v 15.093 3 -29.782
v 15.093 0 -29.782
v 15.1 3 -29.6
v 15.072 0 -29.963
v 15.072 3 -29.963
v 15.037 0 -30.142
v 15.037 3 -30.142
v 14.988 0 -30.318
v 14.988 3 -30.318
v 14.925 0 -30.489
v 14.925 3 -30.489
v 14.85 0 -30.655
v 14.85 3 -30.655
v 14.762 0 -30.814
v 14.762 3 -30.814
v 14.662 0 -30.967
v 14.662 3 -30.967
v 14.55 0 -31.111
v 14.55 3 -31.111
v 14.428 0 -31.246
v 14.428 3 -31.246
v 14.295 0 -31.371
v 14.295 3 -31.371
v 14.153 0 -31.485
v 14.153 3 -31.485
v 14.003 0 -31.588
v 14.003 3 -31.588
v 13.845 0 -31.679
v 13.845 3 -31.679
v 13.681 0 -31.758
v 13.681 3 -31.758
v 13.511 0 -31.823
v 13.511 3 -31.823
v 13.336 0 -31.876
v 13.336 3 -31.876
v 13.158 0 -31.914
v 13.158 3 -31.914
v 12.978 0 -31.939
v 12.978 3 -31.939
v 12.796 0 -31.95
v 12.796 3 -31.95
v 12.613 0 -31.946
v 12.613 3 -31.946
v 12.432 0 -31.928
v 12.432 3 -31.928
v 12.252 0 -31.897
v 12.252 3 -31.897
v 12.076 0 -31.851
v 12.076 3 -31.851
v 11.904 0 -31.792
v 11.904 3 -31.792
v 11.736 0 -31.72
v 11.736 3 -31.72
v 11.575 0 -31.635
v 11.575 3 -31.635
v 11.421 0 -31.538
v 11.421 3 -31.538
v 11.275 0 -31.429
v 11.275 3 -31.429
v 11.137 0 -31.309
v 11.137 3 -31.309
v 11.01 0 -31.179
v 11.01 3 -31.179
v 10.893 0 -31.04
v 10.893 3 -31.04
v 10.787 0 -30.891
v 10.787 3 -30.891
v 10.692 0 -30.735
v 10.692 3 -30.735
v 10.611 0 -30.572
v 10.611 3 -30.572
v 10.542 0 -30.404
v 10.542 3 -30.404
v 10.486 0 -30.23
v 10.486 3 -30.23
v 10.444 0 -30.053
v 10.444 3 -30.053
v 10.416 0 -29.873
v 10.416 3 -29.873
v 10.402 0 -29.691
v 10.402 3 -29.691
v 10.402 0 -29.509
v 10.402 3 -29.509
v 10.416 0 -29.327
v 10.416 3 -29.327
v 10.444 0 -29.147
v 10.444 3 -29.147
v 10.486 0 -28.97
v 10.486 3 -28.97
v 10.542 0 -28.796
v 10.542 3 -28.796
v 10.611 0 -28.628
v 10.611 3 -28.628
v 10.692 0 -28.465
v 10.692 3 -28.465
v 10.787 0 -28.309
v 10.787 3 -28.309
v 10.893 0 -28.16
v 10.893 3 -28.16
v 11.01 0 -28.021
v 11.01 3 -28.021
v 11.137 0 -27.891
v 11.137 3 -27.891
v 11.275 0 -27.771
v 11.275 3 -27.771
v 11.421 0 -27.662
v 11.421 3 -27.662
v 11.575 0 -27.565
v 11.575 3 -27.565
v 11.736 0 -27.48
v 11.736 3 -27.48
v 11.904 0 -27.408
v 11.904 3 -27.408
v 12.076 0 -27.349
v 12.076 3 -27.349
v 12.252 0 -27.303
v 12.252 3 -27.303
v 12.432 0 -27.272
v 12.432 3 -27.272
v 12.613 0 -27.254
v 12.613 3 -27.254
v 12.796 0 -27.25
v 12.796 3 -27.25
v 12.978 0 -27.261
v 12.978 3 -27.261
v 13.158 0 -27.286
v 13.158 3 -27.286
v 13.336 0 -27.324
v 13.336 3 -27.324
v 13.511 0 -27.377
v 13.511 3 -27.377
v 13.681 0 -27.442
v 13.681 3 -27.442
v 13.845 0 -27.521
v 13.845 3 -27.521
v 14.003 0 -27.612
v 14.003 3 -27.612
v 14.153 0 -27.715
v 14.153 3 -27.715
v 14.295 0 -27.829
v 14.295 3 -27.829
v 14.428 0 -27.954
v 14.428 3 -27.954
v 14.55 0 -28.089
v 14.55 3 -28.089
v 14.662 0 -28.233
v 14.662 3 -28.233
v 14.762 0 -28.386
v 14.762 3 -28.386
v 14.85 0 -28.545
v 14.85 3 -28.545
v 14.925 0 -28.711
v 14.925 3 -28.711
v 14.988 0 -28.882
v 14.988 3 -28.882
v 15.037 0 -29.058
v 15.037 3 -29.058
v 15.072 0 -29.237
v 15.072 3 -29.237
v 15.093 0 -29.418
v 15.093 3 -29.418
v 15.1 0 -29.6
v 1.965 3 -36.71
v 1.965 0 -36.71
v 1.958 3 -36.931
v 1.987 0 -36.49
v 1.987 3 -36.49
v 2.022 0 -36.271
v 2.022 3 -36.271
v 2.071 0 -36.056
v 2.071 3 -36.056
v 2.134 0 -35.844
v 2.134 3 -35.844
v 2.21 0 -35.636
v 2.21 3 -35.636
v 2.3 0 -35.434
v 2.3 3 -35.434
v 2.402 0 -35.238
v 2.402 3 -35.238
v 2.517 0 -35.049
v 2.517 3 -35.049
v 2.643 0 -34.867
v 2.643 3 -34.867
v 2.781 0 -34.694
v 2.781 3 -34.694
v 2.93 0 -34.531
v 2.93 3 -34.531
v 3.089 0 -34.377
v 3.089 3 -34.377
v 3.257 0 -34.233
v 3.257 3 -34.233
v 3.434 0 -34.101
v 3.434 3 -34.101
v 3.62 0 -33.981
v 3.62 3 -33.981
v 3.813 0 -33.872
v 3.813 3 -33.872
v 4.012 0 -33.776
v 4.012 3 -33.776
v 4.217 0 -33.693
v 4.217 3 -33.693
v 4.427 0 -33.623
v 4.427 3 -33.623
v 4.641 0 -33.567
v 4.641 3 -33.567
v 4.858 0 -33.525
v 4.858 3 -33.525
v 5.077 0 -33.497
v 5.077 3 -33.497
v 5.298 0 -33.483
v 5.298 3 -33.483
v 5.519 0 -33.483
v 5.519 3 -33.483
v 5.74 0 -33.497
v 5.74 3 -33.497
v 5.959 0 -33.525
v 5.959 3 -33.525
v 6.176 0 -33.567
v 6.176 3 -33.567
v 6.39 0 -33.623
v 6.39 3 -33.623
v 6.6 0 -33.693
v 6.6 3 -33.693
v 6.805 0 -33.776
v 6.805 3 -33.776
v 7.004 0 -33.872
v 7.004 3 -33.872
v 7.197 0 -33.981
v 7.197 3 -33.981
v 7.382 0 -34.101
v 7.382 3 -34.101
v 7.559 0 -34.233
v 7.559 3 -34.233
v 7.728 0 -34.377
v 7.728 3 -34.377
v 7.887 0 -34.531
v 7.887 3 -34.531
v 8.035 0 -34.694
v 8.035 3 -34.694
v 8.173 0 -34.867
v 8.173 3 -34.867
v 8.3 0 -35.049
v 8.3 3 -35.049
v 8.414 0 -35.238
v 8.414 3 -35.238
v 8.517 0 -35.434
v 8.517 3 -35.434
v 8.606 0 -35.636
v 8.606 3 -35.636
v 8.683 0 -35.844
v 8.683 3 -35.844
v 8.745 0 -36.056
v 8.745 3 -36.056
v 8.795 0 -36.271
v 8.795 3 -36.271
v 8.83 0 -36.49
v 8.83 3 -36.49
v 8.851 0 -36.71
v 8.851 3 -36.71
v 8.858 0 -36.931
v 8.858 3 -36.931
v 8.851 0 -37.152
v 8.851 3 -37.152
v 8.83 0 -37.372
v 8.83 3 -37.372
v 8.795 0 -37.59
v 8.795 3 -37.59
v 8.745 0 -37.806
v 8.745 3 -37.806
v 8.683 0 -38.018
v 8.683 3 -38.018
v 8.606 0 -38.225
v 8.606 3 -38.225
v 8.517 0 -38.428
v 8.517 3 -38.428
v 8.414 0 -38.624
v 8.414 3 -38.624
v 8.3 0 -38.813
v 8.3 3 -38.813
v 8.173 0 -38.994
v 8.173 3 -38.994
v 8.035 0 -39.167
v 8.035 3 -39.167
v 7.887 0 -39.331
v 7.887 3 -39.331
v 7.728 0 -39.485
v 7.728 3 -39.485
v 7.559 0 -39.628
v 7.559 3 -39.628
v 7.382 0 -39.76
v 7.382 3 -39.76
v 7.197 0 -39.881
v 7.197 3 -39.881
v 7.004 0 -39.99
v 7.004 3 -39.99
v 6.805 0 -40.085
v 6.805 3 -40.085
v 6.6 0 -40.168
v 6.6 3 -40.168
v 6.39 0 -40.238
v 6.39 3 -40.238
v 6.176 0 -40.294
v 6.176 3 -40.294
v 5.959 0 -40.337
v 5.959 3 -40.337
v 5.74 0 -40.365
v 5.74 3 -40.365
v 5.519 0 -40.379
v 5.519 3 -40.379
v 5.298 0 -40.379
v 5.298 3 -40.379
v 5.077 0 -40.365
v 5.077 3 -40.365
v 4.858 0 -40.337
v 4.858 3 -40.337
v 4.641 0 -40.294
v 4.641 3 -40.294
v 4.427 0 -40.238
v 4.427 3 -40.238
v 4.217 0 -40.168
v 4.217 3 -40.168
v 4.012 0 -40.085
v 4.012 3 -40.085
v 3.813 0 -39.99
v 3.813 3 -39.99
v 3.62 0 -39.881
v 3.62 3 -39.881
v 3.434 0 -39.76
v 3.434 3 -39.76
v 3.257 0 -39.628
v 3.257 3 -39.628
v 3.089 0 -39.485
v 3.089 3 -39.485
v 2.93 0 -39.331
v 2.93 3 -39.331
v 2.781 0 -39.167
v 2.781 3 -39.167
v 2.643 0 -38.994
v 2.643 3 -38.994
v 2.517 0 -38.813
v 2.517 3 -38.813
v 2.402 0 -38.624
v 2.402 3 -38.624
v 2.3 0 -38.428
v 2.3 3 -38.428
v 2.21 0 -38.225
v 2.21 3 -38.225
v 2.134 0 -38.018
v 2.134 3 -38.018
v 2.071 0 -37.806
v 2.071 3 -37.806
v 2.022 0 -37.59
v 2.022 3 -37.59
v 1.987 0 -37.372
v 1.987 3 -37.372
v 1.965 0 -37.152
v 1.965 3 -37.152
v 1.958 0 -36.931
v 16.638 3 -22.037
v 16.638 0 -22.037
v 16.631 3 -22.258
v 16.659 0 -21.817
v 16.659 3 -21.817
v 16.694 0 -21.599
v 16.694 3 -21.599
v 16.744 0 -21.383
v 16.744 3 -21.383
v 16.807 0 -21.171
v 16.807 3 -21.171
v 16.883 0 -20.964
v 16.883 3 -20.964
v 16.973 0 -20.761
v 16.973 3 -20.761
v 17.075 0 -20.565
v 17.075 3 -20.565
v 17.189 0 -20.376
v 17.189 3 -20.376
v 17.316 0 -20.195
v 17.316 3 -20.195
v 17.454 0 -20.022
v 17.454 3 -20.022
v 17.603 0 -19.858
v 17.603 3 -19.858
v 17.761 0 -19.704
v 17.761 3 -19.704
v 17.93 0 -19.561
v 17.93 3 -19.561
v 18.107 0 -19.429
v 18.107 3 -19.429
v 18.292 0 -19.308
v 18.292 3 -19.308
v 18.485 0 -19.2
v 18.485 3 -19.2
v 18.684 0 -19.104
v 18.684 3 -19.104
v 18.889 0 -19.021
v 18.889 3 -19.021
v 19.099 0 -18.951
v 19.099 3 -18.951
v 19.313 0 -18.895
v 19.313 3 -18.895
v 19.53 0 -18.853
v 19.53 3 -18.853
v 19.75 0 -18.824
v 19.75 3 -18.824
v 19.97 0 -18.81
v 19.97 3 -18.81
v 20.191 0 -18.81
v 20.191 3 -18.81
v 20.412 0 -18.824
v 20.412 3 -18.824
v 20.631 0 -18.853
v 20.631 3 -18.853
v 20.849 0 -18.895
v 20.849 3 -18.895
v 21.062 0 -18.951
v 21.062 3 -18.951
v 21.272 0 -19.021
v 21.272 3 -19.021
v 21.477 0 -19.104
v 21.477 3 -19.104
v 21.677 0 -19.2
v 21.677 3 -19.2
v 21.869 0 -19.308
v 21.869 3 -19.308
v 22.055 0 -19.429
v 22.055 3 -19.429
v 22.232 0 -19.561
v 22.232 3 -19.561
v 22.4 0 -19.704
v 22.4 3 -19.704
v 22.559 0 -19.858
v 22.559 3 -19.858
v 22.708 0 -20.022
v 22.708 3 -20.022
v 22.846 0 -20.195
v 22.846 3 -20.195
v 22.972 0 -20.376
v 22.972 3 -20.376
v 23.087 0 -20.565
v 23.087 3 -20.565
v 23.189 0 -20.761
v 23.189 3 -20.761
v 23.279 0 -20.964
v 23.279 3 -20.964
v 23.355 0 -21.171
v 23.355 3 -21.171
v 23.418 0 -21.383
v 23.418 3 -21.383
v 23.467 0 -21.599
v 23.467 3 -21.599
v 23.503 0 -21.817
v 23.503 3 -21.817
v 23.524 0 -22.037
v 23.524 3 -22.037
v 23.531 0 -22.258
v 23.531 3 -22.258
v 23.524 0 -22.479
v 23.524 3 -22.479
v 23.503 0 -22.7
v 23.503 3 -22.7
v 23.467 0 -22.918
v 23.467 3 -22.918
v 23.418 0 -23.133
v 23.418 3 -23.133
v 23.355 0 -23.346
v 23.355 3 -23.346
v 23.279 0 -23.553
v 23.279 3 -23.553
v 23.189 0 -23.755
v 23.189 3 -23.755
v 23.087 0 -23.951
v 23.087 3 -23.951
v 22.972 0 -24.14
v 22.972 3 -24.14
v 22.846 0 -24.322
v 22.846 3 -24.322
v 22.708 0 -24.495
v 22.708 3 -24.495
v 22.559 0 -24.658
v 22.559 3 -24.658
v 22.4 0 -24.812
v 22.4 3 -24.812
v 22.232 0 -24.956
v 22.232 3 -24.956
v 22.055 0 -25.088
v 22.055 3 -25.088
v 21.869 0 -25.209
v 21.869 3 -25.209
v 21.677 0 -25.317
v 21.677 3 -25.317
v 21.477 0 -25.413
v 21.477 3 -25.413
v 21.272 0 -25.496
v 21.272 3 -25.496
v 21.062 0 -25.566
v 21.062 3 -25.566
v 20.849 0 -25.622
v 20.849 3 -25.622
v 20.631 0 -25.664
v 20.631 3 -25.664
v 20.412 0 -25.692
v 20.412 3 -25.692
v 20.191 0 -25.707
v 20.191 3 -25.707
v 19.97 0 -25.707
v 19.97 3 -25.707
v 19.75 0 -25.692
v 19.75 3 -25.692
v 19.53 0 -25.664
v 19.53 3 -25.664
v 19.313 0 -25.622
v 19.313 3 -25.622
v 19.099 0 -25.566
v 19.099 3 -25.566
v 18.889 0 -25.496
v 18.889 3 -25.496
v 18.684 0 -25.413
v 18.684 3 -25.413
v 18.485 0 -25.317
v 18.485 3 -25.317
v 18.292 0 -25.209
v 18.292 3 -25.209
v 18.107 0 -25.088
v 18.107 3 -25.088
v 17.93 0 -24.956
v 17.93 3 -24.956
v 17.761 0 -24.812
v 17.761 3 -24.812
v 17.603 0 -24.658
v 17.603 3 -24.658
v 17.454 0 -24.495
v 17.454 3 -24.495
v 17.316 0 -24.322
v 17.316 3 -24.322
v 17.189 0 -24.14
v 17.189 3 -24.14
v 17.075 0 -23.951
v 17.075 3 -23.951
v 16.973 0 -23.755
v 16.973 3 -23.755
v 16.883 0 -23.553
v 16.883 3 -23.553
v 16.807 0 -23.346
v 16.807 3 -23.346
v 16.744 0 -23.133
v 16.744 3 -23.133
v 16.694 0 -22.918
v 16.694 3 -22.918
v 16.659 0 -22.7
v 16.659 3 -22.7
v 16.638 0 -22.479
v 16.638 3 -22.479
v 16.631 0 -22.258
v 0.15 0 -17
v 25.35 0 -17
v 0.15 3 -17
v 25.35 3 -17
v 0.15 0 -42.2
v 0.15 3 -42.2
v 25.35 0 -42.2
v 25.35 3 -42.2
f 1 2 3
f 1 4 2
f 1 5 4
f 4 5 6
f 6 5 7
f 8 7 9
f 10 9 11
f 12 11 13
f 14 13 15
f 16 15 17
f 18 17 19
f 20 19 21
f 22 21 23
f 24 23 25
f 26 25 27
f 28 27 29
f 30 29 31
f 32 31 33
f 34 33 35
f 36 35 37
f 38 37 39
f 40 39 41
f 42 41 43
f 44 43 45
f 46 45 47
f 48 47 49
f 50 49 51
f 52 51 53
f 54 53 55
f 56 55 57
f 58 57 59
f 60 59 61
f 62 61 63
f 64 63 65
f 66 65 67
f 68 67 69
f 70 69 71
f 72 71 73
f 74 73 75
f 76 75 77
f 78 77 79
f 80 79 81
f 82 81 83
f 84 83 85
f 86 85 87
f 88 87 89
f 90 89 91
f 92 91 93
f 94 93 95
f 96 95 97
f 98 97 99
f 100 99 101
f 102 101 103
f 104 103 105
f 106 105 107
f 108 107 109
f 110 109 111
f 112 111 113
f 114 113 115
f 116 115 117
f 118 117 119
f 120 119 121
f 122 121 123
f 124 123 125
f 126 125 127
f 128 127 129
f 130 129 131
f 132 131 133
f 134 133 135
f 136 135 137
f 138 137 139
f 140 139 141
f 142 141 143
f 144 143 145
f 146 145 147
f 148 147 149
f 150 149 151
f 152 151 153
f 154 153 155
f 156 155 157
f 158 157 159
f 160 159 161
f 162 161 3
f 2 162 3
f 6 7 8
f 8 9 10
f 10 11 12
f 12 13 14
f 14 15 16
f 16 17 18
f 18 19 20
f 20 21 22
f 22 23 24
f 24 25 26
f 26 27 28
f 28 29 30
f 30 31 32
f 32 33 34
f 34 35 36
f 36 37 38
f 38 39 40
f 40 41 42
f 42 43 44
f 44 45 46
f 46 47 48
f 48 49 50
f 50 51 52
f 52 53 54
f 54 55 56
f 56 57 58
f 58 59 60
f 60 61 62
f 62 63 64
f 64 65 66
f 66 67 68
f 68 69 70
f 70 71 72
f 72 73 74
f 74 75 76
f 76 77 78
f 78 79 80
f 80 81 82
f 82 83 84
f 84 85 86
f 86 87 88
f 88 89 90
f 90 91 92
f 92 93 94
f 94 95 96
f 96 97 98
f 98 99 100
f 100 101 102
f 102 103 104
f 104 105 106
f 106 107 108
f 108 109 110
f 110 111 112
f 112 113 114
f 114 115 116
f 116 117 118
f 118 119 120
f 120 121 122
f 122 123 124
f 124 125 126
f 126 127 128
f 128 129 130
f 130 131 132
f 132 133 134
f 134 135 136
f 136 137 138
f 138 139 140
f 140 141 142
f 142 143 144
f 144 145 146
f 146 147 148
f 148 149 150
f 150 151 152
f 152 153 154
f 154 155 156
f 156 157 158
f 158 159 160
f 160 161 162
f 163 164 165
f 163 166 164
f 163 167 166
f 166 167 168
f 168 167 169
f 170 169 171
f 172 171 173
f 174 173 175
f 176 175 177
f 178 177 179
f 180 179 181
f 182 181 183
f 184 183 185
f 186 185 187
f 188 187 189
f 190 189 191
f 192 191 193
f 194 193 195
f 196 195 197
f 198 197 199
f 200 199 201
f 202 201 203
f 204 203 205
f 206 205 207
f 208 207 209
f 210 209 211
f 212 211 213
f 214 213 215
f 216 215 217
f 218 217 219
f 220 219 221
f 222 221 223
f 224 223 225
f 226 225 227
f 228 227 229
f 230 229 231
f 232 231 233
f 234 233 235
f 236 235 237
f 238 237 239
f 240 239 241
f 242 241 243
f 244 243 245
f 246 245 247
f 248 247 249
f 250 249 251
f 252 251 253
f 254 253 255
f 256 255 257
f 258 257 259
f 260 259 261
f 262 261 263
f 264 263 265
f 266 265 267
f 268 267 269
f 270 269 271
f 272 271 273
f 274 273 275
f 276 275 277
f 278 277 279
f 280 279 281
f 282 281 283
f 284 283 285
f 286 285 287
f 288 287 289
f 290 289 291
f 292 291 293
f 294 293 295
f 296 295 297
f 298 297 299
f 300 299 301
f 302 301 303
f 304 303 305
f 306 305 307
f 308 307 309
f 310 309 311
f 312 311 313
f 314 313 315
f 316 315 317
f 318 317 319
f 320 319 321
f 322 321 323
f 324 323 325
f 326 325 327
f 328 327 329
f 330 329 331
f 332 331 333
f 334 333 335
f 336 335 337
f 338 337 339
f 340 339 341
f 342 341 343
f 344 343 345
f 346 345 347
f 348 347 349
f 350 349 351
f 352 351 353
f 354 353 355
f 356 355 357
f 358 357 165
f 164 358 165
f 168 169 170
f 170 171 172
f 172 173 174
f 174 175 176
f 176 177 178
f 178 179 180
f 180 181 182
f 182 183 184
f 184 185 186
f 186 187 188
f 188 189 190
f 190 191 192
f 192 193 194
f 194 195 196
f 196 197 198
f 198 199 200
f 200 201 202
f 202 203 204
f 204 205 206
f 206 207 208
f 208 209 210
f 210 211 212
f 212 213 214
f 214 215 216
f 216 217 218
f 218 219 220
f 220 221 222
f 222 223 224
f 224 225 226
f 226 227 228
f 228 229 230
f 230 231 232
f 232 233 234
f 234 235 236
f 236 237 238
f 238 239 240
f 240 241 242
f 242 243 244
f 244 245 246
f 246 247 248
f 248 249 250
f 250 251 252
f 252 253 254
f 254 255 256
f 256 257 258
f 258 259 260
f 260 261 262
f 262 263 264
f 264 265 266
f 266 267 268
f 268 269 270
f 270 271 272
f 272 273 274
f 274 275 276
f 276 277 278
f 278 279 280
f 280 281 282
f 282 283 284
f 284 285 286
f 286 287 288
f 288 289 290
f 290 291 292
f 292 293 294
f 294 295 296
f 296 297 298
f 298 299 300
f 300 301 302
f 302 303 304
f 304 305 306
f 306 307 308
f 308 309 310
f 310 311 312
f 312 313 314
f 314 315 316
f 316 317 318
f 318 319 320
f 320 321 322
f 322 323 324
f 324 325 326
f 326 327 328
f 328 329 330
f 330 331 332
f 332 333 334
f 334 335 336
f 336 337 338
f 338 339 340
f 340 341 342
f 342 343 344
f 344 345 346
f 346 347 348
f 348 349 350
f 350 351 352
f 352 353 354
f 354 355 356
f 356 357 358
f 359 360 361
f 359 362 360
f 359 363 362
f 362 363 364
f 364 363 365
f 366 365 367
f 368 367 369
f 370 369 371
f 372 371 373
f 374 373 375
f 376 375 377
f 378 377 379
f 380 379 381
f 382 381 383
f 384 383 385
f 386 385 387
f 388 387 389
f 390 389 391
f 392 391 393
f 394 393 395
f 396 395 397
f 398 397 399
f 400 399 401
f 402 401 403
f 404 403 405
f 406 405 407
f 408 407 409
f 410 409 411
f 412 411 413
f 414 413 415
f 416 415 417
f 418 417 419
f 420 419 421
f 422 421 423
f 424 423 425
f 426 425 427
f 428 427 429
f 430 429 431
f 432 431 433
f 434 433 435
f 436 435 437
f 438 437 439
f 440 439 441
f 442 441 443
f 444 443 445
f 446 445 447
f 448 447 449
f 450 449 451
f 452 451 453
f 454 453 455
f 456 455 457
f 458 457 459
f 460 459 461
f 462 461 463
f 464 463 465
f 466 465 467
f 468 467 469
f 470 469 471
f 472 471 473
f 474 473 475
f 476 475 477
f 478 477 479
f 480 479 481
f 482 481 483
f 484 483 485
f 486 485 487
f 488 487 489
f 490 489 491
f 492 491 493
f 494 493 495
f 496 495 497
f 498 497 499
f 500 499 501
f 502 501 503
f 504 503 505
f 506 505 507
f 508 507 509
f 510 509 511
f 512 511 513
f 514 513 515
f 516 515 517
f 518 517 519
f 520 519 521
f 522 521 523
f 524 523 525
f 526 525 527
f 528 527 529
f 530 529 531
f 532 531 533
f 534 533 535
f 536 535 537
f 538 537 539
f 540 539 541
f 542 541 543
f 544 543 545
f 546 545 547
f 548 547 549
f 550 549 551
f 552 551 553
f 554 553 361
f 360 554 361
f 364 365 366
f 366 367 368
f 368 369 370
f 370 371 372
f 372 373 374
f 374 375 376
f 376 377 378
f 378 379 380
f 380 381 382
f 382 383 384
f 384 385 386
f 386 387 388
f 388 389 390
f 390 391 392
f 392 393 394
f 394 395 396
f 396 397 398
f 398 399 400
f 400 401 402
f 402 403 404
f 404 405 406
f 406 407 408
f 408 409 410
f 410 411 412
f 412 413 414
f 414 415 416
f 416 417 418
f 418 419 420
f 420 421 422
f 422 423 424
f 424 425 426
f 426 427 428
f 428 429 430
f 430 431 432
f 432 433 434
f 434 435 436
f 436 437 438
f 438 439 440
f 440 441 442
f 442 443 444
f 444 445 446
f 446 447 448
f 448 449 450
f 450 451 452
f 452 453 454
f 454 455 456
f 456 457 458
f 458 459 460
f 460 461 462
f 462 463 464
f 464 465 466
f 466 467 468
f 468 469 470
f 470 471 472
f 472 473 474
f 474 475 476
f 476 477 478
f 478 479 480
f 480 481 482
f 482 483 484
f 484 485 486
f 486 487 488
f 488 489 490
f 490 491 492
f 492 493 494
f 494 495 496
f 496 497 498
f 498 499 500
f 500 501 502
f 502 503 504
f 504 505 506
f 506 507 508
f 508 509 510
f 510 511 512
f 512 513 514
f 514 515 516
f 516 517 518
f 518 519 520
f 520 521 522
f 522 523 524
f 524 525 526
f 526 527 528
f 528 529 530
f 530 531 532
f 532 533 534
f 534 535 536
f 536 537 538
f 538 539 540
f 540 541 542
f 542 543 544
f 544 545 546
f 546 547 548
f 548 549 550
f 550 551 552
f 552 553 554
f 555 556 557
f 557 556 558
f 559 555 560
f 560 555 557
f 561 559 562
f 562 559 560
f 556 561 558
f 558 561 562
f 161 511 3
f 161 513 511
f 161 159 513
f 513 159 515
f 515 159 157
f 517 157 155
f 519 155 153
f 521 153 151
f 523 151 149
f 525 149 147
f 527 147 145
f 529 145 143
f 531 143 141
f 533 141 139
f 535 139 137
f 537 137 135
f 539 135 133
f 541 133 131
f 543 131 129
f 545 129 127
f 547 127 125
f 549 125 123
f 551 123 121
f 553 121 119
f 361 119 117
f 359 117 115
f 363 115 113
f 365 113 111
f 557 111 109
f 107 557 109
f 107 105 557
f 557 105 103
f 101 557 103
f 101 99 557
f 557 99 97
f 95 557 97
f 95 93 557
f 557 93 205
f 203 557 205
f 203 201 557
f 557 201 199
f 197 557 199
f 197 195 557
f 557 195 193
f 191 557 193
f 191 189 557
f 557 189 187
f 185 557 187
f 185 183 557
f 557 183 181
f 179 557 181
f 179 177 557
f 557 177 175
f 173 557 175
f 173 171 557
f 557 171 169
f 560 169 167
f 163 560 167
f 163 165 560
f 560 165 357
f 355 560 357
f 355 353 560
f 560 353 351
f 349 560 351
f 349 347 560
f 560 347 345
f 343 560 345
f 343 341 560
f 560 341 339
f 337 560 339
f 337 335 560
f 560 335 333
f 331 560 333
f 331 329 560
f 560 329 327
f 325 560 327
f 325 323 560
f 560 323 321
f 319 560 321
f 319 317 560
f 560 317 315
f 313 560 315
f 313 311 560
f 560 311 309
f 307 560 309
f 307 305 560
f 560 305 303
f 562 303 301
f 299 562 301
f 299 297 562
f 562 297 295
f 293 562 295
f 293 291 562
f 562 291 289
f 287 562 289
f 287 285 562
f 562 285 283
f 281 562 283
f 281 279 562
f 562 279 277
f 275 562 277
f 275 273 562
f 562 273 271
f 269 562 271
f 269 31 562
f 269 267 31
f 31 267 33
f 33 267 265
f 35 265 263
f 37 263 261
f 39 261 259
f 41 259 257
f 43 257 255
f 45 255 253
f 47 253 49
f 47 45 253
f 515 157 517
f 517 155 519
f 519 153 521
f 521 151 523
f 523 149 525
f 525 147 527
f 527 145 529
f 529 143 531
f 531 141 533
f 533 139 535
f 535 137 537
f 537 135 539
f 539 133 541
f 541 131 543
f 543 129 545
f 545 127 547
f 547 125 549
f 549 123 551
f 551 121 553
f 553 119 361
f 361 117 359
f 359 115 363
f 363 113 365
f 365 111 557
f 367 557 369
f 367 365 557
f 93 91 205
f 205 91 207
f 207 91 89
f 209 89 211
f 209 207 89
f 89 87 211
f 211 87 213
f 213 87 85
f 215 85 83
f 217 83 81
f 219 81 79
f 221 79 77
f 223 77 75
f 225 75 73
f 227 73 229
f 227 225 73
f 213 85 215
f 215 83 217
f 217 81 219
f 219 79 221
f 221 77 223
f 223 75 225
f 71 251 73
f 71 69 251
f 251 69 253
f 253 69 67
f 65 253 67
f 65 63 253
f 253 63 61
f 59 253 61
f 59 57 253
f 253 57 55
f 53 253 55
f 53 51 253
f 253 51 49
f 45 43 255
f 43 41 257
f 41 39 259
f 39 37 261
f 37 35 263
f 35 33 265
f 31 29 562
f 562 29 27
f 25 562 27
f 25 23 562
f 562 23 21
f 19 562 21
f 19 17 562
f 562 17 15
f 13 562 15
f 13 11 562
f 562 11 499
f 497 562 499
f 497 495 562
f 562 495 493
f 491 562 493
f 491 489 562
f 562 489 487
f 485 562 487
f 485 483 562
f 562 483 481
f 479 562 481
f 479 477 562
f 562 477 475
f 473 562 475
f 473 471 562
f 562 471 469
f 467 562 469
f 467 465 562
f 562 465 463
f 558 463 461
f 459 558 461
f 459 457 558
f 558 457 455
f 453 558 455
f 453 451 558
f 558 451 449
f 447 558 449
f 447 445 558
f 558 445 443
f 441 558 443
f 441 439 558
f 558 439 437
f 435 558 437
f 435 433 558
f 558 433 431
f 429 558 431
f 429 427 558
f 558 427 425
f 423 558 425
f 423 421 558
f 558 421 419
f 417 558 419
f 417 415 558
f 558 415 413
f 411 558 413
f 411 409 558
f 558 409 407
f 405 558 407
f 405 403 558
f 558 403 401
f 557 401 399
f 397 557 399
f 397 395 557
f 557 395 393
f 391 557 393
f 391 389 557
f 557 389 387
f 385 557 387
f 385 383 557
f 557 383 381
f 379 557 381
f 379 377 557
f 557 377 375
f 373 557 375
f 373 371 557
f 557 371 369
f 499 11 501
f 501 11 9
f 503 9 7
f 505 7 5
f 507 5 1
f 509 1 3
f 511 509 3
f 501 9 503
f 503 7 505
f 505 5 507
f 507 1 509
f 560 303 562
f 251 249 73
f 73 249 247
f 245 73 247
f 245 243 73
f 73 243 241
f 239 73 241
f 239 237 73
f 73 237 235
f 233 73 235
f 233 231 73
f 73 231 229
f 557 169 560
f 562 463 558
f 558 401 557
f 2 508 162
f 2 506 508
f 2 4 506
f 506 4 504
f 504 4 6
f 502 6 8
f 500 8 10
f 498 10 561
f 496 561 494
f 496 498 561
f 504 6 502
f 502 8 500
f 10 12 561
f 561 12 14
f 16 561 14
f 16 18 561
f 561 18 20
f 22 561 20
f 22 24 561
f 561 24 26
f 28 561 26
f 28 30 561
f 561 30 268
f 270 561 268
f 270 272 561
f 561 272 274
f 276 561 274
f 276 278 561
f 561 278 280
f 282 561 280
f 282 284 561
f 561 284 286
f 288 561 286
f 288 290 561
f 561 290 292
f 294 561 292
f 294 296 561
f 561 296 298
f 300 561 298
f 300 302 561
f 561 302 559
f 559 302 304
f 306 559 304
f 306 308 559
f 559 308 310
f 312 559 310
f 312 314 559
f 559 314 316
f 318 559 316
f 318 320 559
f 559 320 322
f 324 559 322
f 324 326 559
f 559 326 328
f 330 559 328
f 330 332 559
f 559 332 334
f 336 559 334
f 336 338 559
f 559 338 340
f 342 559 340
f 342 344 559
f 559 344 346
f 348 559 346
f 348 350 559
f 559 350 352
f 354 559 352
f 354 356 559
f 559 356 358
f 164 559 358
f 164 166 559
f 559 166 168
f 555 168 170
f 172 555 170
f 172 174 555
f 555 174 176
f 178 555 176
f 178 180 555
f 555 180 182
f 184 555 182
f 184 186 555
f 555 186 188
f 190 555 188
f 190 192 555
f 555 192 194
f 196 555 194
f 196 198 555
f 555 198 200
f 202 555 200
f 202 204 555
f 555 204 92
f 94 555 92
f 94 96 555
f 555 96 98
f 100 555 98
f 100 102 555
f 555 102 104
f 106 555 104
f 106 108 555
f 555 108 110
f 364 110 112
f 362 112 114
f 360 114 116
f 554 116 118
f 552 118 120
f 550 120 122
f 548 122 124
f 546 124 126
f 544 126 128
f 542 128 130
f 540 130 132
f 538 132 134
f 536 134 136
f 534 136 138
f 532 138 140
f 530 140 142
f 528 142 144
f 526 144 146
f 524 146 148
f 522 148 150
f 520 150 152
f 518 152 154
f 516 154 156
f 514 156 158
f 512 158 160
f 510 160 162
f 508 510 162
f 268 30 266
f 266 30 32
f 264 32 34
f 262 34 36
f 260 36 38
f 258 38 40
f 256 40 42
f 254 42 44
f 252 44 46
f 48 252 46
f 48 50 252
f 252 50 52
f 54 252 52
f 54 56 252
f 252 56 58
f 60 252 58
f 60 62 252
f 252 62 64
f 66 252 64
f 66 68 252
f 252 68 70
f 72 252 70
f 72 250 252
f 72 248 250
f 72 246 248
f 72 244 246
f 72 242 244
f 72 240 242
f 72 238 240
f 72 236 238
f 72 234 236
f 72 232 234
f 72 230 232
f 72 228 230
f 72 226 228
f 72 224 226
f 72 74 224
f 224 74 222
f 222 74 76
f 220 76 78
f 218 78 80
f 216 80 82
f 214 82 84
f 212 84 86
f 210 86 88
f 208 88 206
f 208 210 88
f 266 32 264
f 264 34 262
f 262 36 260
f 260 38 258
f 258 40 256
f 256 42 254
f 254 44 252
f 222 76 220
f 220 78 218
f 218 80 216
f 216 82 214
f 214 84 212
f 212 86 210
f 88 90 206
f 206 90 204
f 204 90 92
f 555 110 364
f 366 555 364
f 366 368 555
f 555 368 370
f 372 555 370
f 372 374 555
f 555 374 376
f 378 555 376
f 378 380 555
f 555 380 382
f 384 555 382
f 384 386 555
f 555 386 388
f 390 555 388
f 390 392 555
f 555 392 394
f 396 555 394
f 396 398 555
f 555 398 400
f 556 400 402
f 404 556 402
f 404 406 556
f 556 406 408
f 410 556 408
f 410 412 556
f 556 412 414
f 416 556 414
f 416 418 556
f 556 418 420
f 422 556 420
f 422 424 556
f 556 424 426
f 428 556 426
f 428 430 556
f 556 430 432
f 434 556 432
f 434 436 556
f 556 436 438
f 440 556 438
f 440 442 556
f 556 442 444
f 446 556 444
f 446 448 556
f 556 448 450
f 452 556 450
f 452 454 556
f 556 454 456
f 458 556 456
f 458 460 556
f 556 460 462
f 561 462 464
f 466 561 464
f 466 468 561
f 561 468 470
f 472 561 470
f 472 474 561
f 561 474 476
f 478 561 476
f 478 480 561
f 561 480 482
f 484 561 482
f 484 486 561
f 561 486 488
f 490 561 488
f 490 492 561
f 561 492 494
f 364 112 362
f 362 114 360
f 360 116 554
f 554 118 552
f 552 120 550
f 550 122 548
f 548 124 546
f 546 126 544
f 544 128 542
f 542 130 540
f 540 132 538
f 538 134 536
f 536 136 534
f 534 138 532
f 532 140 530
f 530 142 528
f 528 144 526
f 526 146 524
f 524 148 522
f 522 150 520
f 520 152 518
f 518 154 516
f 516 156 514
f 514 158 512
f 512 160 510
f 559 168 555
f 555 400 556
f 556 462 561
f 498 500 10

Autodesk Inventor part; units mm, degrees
ref_plane "YZ Plane" through (0, 0, 0) normal (1, 0, 0) x (0, 1, 0)
ref_plane "XZ Plane" through (0, 0, 0) normal (0, 1, 0) x (-1, 0, 0)
ref_plane "XY Plane" through (0, 0, 0) normal (0, 0, 1) x (1, 0, 0)
sketch "Sketch1" plane through (0, 0, 0) normal (0, 1, 0) x (-1, 0, 0)
  circle A0 centre (-20.0808, -22.2584) radius 3.45
  circle A1 centre (-5.4083, -36.9307) radius 3.45
  line L0 (-25.35, -17) -> (-25.35, -23.6)
  line L1 (-25.35, -23.6) -> (-25.35, -35.6)
  line L2 (-25.35, -35.6) -> (-25.35, -42.2)
  line L3 (-25.35, -42.2) -> (-0.15, -42.2)
  line L4 (-0.15, -42.2) -> (-0.15, -35.6)
  line L5 (-0.15, -35.6) -> (-0.15, -23.6)
  line L6 (-0.15, -23.6) -> (-0.15, -17)
  line L7 (-25.35, -42.2) -> (-0.15, -42.2)
  line L8 (-0.15, -42.2) -> (-0.15, -17)
  line L9 (-0.15, -17) -> (-25.35, -17)
  line L10 (-25.35, -17) -> (-25.35, -42.2)
  circle A2 centre (-12.75, -29.6) radius 2.075
  point P0 (0, 0)
  point P1 (0, 0)
  dimension "d0" = 25.2
  dimension "d1" = 4.15
extrude "Extrusion1" add sketch "Sketch1" along normal blind 3
sketch "Sketch2" plane through (0, 0, 0) normal (0, -1, 0) x (1, 0, 0)
  point P0 (0, 0)
sketch "Sketch3" plane through (0, 0, 0) normal (0, -1, 0) x (1, 0, 0)
  circle A0 centre (12.75, -29.6) radius 2.075 projected
  circle A1 centre (12.75, -29.6) radius 2.15
  point P0 (0, 0)
  dimension "d4" = 4.3
extrude "Extrusion2" cut sketch "Sketch3" against normal blind 10
sketch "Sketch4" plane through (0, 0, 0) normal (0, -1, 0) x (1, 0, 0)
  circle A0 centre (12.75, -29.6) radius 2.15 projected
  circle A1 centre (12.75, -29.6) radius 2.35
  point P0 (0, 0)
  dimension "d7" = 4.7
extrude "Extrusion3" cut sketch "Sketch4" against normal blind 10
properties part number "upperSeal" material "Water"
